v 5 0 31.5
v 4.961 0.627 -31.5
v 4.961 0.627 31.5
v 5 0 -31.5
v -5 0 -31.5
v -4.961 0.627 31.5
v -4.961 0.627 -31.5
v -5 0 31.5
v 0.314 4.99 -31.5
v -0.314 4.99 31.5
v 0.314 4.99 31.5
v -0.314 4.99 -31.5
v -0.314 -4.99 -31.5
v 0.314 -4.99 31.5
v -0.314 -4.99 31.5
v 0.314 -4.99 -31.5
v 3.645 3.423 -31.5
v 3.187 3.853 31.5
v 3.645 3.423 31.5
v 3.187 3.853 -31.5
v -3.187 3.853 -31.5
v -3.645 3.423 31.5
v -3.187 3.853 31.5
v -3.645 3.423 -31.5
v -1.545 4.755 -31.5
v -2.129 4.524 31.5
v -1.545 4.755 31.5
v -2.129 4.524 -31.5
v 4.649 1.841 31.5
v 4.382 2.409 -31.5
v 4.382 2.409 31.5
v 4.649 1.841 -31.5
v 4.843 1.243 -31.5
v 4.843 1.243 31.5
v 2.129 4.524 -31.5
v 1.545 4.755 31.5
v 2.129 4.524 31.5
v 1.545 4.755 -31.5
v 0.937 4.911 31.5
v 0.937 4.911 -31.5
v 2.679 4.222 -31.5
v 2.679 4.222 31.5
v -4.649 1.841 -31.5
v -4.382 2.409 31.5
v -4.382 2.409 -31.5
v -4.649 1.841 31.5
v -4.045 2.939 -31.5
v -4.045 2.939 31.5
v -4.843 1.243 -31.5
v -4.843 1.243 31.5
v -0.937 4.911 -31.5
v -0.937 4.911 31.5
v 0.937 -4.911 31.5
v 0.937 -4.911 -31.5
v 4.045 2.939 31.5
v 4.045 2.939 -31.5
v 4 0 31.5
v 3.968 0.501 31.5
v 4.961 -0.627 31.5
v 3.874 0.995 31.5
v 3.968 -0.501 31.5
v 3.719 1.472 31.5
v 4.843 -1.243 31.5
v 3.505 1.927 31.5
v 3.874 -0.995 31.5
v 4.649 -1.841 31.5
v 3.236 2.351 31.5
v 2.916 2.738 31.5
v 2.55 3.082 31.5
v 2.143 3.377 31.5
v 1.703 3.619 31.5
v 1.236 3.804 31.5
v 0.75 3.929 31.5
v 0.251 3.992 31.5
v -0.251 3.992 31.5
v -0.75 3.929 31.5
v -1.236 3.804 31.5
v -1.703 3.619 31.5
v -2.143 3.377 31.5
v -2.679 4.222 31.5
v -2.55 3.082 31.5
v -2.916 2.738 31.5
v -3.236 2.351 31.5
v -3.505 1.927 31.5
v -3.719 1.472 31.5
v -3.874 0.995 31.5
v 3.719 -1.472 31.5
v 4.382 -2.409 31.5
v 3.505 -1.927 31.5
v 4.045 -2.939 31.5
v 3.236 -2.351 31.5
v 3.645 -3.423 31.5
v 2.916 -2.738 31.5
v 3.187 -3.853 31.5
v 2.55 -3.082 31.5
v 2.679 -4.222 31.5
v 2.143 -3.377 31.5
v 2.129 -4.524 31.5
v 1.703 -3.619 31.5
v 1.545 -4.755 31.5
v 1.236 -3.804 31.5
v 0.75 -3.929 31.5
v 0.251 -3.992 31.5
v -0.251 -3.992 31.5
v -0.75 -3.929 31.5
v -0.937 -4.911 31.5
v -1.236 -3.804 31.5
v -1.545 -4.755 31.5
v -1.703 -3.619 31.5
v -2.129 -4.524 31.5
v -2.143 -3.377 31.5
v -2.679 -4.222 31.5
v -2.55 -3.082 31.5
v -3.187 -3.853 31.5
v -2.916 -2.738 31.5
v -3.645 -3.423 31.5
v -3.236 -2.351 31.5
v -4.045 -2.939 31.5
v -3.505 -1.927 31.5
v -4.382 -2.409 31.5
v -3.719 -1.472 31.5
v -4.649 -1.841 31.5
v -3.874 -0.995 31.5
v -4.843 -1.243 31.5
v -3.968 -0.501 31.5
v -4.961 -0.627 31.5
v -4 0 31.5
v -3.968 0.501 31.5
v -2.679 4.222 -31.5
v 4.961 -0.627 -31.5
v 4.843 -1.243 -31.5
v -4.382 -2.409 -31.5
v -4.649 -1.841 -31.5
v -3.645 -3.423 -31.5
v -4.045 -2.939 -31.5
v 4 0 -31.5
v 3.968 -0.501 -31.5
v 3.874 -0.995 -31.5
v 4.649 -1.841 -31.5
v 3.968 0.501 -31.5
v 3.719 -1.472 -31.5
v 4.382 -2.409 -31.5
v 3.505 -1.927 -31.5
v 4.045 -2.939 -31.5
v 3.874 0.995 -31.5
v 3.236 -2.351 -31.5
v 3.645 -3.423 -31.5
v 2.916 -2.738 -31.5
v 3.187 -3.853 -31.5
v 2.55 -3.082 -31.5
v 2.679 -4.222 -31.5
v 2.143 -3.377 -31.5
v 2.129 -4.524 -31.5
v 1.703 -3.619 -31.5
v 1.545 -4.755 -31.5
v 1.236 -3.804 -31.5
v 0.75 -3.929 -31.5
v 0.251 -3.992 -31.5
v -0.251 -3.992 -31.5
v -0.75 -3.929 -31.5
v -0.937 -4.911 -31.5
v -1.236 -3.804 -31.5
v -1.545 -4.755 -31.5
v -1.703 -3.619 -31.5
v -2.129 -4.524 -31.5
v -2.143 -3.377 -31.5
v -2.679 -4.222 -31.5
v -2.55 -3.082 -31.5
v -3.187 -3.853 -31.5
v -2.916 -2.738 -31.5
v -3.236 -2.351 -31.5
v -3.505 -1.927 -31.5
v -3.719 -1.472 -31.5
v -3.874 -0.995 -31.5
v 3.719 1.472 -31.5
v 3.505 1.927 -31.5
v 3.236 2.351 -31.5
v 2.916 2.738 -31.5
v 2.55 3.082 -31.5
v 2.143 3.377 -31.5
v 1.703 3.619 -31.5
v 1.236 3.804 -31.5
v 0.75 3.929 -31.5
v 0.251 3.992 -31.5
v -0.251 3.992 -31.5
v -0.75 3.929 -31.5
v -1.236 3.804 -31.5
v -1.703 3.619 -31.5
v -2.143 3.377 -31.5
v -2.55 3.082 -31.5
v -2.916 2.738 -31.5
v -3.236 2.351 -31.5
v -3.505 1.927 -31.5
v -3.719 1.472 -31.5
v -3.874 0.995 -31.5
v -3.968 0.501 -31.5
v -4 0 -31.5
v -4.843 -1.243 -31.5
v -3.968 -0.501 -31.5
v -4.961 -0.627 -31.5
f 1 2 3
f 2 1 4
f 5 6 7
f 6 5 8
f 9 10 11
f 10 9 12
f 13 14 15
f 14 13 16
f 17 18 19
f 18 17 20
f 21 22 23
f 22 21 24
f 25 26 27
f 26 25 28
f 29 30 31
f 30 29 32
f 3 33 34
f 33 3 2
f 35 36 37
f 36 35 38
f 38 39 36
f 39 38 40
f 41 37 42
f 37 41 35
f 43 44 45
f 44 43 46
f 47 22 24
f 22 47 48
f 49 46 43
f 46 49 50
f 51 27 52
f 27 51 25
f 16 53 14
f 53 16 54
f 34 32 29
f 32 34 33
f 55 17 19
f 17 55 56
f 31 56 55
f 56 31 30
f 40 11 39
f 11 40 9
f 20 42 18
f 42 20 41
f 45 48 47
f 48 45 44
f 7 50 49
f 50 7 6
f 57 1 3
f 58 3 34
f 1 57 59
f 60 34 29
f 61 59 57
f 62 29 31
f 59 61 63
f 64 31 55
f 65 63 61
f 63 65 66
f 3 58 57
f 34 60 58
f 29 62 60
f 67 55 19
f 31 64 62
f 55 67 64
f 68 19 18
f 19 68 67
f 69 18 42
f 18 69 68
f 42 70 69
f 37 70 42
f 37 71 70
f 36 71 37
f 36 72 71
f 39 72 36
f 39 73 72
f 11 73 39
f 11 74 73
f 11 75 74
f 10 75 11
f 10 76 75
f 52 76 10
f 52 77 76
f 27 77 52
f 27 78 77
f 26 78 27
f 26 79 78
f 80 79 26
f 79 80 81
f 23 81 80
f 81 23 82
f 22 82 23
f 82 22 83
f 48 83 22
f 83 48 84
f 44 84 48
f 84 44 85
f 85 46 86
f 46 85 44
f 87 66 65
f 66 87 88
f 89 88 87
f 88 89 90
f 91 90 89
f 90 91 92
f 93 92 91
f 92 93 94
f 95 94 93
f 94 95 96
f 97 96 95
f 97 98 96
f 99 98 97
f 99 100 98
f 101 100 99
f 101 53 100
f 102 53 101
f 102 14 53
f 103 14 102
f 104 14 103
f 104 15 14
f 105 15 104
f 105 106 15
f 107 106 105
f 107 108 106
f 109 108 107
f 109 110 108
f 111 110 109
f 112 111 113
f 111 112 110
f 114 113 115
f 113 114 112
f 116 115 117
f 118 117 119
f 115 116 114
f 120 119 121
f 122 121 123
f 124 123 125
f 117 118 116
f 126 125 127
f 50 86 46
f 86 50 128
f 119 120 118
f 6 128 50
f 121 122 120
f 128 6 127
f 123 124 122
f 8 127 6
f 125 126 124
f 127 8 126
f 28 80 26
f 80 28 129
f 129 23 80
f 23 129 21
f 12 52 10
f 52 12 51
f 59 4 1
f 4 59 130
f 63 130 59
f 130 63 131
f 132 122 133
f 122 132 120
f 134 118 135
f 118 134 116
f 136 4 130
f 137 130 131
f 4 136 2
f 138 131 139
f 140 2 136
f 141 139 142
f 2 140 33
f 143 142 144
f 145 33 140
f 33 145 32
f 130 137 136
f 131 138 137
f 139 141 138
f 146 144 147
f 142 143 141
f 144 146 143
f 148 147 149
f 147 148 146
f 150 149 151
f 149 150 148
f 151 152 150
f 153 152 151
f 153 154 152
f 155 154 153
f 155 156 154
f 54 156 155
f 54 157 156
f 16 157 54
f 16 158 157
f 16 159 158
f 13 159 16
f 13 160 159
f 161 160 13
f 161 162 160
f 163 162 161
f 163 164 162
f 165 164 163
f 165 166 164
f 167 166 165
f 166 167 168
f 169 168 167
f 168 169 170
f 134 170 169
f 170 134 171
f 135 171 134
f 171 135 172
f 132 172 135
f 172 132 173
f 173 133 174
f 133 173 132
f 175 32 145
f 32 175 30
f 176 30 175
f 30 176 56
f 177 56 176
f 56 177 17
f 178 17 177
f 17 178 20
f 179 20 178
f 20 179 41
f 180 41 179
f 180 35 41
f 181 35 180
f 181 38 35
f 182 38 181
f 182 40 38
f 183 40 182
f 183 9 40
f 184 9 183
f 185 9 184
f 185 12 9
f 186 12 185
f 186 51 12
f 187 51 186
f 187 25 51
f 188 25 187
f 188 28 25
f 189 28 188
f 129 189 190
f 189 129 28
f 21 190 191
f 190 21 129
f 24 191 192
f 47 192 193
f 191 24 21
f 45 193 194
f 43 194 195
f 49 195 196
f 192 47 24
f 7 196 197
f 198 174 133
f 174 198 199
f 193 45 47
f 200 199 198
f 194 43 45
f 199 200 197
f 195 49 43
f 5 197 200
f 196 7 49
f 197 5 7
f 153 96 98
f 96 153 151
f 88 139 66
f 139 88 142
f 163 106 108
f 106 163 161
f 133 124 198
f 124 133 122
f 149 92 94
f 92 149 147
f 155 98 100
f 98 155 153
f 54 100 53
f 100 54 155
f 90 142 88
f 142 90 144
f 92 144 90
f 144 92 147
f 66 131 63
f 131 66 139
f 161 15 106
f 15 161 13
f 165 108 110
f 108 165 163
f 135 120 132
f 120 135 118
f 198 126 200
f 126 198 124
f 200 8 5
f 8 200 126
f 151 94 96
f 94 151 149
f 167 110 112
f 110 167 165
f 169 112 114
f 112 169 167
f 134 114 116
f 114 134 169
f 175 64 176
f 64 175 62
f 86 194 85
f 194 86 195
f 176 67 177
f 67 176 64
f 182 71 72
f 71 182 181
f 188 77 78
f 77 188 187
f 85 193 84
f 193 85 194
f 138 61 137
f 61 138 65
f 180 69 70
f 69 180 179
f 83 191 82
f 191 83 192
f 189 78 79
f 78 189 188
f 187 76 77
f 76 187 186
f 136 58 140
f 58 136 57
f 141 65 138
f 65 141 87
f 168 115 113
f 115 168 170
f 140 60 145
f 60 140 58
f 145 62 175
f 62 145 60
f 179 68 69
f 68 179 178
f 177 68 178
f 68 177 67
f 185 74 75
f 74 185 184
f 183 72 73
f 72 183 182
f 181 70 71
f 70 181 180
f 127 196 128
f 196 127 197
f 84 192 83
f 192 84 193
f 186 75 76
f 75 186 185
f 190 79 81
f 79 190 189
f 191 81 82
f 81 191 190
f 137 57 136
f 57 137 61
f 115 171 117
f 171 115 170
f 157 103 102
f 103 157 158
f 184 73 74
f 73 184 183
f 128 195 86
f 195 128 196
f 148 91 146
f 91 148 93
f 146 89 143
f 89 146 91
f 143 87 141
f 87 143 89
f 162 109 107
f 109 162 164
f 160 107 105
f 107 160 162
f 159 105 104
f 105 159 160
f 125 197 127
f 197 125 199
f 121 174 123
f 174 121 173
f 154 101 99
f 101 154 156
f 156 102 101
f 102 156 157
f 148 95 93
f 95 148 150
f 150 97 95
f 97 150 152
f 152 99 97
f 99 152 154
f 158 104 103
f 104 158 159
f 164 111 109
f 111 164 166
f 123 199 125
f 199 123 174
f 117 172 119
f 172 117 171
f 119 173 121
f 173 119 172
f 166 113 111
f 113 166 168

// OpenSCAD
$fn = 50;


difference() {
	union() {
		translate(v = [0, 0, -31.5000000000]) {
			cylinder(h = 63, r = 5.0000000000);
		}
	}
	union() {
		translate(v = [0, 0, -100.0000000000]) {
			cylinder(h = 200, r = 4);
		}
	}
}
